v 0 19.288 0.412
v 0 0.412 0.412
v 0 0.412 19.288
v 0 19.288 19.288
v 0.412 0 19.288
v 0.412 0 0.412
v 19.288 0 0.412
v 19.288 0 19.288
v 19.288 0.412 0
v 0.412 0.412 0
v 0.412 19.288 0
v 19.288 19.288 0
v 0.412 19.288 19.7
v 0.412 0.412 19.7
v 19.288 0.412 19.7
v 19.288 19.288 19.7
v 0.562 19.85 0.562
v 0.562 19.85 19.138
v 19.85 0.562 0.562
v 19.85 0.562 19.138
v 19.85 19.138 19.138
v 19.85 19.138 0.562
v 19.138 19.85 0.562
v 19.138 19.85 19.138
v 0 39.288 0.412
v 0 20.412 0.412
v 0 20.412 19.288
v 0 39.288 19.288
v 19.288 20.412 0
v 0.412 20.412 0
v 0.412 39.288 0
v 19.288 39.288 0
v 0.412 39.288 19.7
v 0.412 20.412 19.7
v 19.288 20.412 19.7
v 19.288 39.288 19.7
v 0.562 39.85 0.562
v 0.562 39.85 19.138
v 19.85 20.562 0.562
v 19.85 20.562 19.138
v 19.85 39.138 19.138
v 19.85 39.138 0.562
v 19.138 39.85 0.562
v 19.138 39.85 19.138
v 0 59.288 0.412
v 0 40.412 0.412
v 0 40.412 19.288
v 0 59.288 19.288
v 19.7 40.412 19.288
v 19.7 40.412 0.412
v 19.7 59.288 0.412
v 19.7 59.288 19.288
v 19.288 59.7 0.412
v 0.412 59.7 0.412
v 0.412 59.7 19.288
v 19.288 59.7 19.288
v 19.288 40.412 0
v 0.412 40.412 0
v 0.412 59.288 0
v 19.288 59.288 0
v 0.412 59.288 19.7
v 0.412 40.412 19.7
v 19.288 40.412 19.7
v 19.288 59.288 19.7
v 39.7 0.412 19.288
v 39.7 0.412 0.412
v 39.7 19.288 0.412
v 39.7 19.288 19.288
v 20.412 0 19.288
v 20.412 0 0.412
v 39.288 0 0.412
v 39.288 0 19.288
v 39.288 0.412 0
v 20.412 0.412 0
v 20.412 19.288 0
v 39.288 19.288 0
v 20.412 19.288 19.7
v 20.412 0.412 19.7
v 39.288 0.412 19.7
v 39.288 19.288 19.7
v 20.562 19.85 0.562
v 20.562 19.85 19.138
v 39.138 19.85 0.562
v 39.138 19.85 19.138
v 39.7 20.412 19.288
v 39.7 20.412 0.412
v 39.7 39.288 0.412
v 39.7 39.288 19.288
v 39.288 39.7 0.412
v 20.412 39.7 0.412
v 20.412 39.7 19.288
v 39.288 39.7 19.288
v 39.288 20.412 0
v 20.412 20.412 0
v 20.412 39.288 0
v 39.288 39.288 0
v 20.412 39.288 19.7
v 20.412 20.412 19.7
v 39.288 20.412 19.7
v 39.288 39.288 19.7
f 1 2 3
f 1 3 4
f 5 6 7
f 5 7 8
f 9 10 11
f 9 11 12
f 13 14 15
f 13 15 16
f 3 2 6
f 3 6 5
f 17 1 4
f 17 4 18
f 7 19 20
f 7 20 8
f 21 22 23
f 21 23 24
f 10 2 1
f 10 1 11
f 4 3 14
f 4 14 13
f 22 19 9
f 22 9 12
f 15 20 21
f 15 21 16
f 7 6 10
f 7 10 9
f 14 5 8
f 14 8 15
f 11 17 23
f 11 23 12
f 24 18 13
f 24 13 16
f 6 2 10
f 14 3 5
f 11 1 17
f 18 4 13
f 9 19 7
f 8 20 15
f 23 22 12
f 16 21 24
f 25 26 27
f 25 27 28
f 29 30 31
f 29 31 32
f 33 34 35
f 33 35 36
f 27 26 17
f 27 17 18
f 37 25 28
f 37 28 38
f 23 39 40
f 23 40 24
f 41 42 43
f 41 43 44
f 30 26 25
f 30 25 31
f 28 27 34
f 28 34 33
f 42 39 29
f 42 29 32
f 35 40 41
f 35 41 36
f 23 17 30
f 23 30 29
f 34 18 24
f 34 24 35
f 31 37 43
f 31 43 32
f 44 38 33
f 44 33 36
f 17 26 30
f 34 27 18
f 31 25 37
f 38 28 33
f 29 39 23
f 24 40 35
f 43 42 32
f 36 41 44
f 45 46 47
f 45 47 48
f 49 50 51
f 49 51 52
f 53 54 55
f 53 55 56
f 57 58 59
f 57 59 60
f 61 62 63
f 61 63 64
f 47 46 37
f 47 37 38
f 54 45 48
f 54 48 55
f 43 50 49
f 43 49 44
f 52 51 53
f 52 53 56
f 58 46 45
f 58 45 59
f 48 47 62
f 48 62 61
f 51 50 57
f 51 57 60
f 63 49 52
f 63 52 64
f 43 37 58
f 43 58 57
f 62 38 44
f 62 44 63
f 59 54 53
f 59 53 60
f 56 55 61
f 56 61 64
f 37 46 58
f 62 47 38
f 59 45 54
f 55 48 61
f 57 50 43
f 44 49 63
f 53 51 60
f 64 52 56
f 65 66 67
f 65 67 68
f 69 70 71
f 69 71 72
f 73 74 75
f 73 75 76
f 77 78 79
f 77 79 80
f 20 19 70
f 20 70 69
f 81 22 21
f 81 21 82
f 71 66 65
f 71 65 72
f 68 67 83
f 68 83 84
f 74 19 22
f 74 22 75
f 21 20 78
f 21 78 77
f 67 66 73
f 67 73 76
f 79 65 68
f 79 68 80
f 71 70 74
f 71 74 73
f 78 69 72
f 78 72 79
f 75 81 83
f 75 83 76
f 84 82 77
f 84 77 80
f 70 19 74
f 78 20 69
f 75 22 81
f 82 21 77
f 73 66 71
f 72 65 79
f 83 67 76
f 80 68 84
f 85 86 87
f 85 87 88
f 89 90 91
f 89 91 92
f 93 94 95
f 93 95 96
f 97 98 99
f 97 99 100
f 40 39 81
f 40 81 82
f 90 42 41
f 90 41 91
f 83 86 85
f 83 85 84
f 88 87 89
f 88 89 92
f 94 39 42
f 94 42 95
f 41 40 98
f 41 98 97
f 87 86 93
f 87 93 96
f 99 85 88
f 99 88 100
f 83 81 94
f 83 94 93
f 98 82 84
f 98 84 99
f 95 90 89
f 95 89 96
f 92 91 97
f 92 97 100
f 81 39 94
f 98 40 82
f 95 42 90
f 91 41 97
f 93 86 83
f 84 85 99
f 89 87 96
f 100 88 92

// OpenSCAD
// Wongo piece 7: Step. GPL-3.0.
// 20 mm lattice; 0.15 mm inward surface clearance; 0.5 mm chamfer.
// Mesh is identical to the STL; changing unit scales the complete finished mesh.
unit=20;
scale([unit/20,unit/20,unit/20]) polyhedron(points=[[0,19.28786797,0.41213203],[0,0.41213203,0.41213203],[0,0.41213203,19.28786797],[0,19.28786797,19.28786797],[0.41213203,0,19.28786797],[0.41213203,0,0.41213203],[19.28786797,0,0.41213203],[19.28786797,0,19.28786797],[19.28786797,0.41213203,0],[0.41213203,0.41213203,0],[0.41213203,19.28786797,0],[19.28786797,19.28786797,0],[0.41213203,19.28786797,19.7],[0.41213203,0.41213203,19.7],[19.28786797,0.41213203,19.7],[19.28786797,19.28786797,19.7],[0.56213203,19.85,0.56213203],[0.56213203,19.85,19.13786797],[19.85,0.56213203,0.56213203],[19.85,0.56213203,19.13786797],[19.85,19.13786797,19.13786797],[19.85,19.13786797,0.56213203],[19.13786797,19.85,0.56213203],[19.13786797,19.85,19.13786797],[0,39.28786797,0.41213203],[0,20.41213203,0.41213203],[0,20.41213203,19.28786797],[0,39.28786797,19.28786797],[19.28786797,20.41213203,0],[0.41213203,20.41213203,0],[0.41213203,39.28786797,0],[19.28786797,39.28786797,0],[0.41213203,39.28786797,19.7],[0.41213203,20.41213203,19.7],[19.28786797,20.41213203,19.7],[19.28786797,39.28786797,19.7],[0.56213203,39.85,0.56213203],[0.56213203,39.85,19.13786797],[19.85,20.56213203,0.56213203],[19.85,20.56213203,19.13786797],[19.85,39.13786797,19.13786797],[19.85,39.13786797,0.56213203],[19.13786797,39.85,0.56213203],[19.13786797,39.85,19.13786797],[0,59.28786797,0.41213203],[0,40.41213203,0.41213203],[0,40.41213203,19.28786797],[0,59.28786797,19.28786797],[19.7,40.41213203,19.28786797],[19.7,40.41213203,0.41213203],[19.7,59.28786797,0.41213203],[19.7,59.28786797,19.28786797],[19.28786797,59.7,0.41213203],[0.41213203,59.7,0.41213203],[0.41213203,59.7,19.28786797],[19.28786797,59.7,19.28786797],[19.28786797,40.41213203,0],[0.41213203,40.41213203,0],[0.41213203,59.28786797,0],[19.28786797,59.28786797,0],[0.41213203,59.28786797,19.7],[0.41213203,40.41213203,19.7],[19.28786797,40.41213203,19.7],[19.28786797,59.28786797,19.7],[39.7,0.41213203,19.28786797],[39.7,0.41213203,0.41213203],[39.7,19.28786797,0.41213203],[39.7,19.28786797,19.28786797],[20.41213203,0,19.28786797],[20.41213203,0,0.41213203],[39.28786797,0,0.41213203],[39.28786797,0,19.28786797],[39.28786797,0.41213203,0],[20.41213203,0.41213203,0],[20.41213203,19.28786797,0],[39.28786797,19.28786797,0],[20.41213203,19.28786797,19.7],[20.41213203,0.41213203,19.7],[39.28786797,0.41213203,19.7],[39.28786797,19.28786797,19.7],[20.56213203,19.85,0.56213203],[20.56213203,19.85,19.13786797],[39.13786797,19.85,0.56213203],[39.13786797,19.85,19.13786797],[39.7,20.41213203,19.28786797],[39.7,20.41213203,0.41213203],[39.7,39.28786797,0.41213203],[39.7,39.28786797,19.28786797],[39.28786797,39.7,0.41213203],[20.41213203,39.7,0.41213203],[20.41213203,39.7,19.28786797],[39.28786797,39.7,19.28786797],[39.28786797,20.41213203,0],[20.41213203,20.41213203,0],[20.41213203,39.28786797,0],[39.28786797,39.28786797,0],[20.41213203,39.28786797,19.7],[20.41213203,20.41213203,19.7],[39.28786797,20.41213203,19.7],[39.28786797,39.28786797,19.7]],faces=[[2,1,0],[3,2,0],[6,5,4],[7,6,4],[10,9,8],[11,10,8],[14,13,12],[15,14,12],[5,1,2],[4,5,2],[3,0,16],[17,3,16],[19,18,6],[7,19,6],[22,21,20],[23,22,20],[0,1,9],[10,0,9],[13,2,3],[12,13,3],[8,18,21],[11,8,21],[20,19,14],[15,20,14],[9,5,6],[8,9,6],[7,4,13],[14,7,13],[22,16,10],[11,22,10],[12,17,23],[15,12,23],[9,1,5],[4,2,13],[16,0,10],[12,3,17],[6,18,8],[14,19,7],[11,21,22],[23,20,15],[26,25,24],[27,26,24],[30,29,28],[31,30,28],[34,33,32],[35,34,32],[16,25,26],[17,16,26],[27,24,36],[37,27,36],[39,38,22],[23,39,22],[42,41,40],[43,42,40],[24,25,29],[30,24,29],[33,26,27],[32,33,27],[28,38,41],[31,28,41],[40,39,34],[35,40,34],[29,16,22],[28,29,22],[23,17,33],[34,23,33],[42,36,30],[31,42,30],[32,37,43],[35,32,43],[29,25,16],[17,26,33],[36,24,30],[32,27,37],[22,38,28],[34,39,23],[31,41,42],[43,40,35],[46,45,44],[47,46,44],[50,49,48],[51,50,48],[54,53,52],[55,54,52],[58,57,56],[59,58,56],[62,61,60],[63,62,60],[36,45,46],[37,36,46],[47,44,53],[54,47,53],[48,49,42],[43,48,42],[52,50,51],[55,52,51],[44,45,57],[58,44,57],[61,46,47],[60,61,47],[56,49,50],[59,56,50],[51,48,62],[63,51,62],[57,36,42],[56,57,42],[43,37,61],[62,43,61],[52,53,58],[59,52,58],[60,54,55],[63,60,55],[57,45,36],[37,46,61],[53,44,58],[60,47,54],[42,49,56],[62,48,43],[59,50,52],[55,51,63],[66,65,64],[67,66,64],[70,69,68],[71,70,68],[74,73,72],[75,74,72],[78,77,76],[79,78,76],[69,18,19],[68,69,19],[20,21,80],[81,20,80],[64,65,70],[71,64,70],[82,66,67],[83,82,67],[21,18,73],[74,21,73],[77,19,20],[76,77,20],[72,65,66],[75,72,66],[67,64,78],[79,67,78],[73,69,70],[72,73,70],[71,68,77],[78,71,77],[82,80,74],[75,82,74],[76,81,83],[79,76,83],[73,18,69],[68,19,77],[80,21,74],[76,20,81],[70,65,72],[78,64,71],[75,66,82],[83,67,79],[86,85,84],[87,86,84],[90,89,88],[91,90,88],[94,93,92],[95,94,92],[98,97,96],[99,98,96],[80,38,39],[81,80,39],[40,41,89],[90,40,89],[84,85,82],[83,84,82],[88,86,87],[91,88,87],[41,38,93],[94,41,93],[97,39,40],[96,97,40],[92,85,86],[95,92,86],[87,84,98],[99,87,98],[93,80,82],[92,93,82],[83,81,97],[98,83,97],[88,89,94],[95,88,94],[96,90,91],[99,96,91],[93,38,80],[81,39,97],[89,41,94],[96,40,90],[82,85,92],[98,84,83],[95,86,88],[91,87,99]],convexity=10);
